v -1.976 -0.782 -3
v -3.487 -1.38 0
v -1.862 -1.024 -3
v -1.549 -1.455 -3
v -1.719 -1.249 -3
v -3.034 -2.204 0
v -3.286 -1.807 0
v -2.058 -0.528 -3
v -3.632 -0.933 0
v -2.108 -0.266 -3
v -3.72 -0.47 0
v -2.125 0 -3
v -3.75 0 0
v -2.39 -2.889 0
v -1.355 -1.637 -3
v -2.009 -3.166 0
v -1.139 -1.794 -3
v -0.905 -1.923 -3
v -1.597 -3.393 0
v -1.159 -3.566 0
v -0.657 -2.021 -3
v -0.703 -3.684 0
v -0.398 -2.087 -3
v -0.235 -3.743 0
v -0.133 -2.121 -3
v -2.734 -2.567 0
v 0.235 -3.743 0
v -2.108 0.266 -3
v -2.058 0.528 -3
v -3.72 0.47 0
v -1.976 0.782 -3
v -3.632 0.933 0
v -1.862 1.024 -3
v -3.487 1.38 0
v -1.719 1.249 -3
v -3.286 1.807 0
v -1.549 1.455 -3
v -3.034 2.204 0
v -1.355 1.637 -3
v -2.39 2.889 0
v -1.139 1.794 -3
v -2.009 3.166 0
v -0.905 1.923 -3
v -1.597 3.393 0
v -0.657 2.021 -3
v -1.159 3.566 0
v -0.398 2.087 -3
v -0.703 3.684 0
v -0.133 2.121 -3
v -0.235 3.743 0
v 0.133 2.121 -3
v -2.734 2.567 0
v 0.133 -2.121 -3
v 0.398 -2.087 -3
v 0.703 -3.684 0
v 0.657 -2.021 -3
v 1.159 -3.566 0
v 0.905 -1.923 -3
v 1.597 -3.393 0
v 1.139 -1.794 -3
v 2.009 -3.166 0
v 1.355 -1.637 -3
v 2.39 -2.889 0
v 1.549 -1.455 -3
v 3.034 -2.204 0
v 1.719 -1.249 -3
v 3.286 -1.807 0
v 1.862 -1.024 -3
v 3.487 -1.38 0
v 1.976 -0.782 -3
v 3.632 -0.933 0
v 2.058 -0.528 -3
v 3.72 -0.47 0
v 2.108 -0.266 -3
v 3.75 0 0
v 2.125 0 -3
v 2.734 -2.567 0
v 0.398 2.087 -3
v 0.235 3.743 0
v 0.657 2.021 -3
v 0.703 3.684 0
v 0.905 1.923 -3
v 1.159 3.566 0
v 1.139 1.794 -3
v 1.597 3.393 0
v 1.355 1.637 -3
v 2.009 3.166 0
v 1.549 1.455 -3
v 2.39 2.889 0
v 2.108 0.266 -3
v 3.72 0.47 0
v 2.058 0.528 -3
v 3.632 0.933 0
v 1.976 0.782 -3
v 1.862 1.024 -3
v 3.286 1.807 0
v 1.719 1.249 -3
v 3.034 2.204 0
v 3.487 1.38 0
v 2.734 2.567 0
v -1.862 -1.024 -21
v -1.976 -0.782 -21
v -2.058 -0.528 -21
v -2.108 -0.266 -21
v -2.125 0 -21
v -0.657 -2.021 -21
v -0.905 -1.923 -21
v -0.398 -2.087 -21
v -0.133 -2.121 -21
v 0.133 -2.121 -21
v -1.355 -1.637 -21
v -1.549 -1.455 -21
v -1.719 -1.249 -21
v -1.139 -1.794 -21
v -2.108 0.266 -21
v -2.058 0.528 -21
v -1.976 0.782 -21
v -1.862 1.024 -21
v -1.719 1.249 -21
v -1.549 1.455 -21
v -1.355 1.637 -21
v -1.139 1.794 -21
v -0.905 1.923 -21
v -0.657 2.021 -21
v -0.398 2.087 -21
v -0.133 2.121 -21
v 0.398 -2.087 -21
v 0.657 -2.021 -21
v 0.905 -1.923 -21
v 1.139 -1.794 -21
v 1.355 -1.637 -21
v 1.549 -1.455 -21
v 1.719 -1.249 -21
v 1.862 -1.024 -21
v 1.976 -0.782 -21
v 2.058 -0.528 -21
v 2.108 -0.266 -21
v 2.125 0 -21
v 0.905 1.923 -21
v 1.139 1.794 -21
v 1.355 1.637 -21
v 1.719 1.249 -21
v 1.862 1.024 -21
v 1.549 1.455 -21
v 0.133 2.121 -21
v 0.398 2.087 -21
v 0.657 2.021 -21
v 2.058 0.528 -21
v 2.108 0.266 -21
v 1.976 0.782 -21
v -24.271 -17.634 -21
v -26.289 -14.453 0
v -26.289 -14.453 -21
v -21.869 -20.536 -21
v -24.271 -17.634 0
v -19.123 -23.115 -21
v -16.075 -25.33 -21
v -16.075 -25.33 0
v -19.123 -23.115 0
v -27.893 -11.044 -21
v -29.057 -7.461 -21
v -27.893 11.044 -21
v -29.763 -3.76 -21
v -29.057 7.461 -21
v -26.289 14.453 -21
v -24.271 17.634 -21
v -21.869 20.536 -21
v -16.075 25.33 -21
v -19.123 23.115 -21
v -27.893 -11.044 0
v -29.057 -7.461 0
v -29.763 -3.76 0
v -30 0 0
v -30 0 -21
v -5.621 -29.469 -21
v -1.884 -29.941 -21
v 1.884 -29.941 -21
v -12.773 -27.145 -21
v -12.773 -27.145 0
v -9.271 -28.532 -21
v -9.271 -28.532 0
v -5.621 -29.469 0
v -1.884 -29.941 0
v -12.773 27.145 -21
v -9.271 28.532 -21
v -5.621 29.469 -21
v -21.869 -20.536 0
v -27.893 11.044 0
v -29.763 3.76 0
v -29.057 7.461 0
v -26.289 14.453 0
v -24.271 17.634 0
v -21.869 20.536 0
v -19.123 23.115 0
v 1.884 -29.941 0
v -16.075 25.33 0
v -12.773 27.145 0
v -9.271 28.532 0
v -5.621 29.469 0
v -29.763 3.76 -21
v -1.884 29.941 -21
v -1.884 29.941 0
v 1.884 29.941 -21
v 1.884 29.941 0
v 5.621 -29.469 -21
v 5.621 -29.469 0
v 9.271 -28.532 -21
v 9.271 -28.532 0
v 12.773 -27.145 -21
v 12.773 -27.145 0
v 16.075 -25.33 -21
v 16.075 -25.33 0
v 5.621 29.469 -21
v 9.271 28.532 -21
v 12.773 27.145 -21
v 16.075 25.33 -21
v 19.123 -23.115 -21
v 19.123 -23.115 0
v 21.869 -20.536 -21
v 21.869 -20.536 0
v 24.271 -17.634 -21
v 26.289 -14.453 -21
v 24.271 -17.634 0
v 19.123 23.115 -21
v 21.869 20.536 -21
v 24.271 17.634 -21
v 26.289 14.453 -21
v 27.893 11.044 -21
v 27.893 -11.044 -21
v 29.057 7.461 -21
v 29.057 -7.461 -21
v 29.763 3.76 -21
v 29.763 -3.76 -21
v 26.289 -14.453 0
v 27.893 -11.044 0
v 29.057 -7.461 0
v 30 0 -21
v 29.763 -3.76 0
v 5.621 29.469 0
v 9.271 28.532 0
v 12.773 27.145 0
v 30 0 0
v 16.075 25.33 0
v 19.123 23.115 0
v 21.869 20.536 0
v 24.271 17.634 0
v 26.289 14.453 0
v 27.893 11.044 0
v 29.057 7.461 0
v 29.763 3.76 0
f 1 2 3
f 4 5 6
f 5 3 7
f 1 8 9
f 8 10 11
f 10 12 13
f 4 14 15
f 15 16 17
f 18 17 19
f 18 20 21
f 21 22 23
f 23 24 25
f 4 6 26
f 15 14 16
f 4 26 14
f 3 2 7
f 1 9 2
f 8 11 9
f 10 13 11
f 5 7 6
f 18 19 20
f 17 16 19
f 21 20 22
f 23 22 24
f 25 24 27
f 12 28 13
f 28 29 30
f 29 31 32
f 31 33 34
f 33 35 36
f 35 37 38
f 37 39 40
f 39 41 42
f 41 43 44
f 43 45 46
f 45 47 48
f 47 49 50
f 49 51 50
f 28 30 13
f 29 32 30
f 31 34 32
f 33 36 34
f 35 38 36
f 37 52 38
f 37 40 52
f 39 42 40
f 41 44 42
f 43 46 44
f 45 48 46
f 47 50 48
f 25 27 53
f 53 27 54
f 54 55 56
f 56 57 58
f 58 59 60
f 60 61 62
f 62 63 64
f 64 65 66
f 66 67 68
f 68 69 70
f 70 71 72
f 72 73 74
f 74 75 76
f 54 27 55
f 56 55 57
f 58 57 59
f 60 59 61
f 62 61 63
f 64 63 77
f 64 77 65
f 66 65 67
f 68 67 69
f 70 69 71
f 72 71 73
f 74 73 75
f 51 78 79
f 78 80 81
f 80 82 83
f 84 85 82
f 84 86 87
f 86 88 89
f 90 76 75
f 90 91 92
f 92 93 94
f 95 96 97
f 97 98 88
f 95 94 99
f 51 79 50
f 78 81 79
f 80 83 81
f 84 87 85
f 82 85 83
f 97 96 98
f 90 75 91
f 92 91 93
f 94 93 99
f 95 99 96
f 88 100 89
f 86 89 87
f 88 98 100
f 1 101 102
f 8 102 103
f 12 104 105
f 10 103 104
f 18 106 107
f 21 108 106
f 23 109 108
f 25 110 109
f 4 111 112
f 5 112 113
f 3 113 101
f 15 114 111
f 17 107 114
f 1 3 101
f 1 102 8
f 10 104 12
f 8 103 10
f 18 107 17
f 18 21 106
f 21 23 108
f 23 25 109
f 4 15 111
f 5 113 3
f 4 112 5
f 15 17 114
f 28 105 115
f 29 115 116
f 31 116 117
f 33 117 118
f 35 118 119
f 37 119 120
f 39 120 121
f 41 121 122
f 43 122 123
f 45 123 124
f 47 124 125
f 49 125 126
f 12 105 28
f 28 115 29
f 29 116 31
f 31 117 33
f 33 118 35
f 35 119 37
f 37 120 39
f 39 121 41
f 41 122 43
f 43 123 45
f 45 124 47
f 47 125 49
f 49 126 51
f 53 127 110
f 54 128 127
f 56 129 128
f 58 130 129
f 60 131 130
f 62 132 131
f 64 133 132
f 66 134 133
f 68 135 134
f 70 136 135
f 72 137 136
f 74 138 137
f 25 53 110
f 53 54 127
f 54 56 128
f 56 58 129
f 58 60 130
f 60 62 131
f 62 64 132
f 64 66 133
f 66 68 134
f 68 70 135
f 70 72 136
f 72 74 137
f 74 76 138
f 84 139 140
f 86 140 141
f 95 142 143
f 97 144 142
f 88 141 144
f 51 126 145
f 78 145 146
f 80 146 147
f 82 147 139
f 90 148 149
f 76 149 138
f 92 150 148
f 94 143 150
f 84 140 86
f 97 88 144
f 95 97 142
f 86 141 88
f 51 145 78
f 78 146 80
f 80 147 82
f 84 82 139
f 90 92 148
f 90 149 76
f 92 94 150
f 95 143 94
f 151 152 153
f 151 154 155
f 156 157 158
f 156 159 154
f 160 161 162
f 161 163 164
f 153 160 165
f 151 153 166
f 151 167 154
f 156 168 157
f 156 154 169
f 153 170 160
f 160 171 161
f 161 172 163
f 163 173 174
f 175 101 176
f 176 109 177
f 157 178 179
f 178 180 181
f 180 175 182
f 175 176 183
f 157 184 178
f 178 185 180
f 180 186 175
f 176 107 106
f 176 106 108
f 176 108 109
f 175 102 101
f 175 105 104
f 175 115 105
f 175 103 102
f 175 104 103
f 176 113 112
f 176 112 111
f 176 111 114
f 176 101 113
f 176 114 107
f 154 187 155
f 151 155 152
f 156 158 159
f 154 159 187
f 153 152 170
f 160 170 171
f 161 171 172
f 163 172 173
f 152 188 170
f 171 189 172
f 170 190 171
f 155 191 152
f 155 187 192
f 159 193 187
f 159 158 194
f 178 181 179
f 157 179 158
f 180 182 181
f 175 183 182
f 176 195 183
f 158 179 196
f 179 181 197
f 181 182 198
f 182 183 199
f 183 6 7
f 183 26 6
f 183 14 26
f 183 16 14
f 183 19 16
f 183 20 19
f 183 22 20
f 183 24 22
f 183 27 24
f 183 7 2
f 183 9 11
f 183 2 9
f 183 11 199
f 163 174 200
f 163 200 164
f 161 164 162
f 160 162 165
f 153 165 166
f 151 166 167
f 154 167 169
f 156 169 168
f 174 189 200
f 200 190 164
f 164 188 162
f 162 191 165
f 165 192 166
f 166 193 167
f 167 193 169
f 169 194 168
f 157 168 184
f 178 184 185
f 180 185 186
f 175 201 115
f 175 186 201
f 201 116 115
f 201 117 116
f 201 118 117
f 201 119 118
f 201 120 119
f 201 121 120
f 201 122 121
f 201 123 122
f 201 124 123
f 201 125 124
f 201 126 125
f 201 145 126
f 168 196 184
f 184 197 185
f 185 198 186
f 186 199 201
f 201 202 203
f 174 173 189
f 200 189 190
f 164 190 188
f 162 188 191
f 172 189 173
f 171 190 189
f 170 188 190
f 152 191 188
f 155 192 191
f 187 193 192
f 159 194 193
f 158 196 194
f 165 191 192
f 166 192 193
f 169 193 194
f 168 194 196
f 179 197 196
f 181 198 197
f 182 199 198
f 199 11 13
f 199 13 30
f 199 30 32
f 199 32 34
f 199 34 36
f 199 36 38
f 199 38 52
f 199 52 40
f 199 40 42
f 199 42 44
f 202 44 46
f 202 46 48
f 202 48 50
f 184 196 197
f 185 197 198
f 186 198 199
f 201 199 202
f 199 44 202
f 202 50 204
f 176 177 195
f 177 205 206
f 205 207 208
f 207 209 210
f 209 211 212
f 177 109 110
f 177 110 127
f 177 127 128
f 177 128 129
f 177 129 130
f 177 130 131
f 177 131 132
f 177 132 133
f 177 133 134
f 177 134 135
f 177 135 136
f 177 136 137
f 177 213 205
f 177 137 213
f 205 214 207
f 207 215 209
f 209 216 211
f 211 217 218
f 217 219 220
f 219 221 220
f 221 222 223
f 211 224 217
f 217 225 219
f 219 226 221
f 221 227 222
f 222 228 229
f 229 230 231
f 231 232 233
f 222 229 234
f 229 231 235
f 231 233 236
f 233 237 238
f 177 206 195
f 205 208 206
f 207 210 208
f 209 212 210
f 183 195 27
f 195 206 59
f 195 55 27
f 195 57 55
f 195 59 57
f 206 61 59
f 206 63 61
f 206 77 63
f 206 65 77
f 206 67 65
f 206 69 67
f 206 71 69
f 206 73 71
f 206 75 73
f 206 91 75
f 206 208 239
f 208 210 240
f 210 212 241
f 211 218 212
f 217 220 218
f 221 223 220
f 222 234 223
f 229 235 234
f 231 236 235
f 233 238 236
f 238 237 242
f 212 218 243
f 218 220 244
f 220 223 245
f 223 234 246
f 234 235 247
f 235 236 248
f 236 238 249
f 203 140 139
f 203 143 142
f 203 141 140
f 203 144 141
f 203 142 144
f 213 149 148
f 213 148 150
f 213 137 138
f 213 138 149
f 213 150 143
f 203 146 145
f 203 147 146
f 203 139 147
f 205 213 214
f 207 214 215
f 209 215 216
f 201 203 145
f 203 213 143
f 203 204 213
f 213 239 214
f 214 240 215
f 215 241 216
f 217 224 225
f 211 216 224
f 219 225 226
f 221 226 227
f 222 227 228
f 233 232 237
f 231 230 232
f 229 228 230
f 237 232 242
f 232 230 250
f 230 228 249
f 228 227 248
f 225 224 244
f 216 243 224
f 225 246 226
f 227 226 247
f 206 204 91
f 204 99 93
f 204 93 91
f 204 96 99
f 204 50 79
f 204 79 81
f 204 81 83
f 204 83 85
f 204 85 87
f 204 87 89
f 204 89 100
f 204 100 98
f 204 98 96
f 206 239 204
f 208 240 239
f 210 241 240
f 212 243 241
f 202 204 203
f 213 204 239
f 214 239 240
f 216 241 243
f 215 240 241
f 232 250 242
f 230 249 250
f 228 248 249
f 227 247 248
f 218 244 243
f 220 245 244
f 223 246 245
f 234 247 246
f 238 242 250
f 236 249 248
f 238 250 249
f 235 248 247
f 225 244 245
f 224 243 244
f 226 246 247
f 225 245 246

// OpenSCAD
$fn = 50;


difference() {
	union() {
		translate(v = [0, 0, -21.0000000000]) {
			cylinder(h = 21, r = 30.0000000000);
		}
	}
	union() {
		translate(v = [0, 0, 0]) {
			rotate(a = [0, 0, 0]) {
				difference() {
					union() {
						translate(v = [0, 0, -24.0000000000]) {
							cylinder(h = 24, r = 2.0000000000);
						}
						translate(v = [0, 0, -3]) {
							cylinder(h = 3, r1 = 2.1250000000, r2 = 3.7500000000);
						}
						translate(v = [0, 0, -24.0000000000]) {
							cylinder(h = 24, r = 2.1250000000);
						}
						translate(v = [0, 0, -24.0000000000]) {
							cylinder(h = 24, r = 2.0000000000);
						}
					}
					union();
				}
			}
		}
	}
}
